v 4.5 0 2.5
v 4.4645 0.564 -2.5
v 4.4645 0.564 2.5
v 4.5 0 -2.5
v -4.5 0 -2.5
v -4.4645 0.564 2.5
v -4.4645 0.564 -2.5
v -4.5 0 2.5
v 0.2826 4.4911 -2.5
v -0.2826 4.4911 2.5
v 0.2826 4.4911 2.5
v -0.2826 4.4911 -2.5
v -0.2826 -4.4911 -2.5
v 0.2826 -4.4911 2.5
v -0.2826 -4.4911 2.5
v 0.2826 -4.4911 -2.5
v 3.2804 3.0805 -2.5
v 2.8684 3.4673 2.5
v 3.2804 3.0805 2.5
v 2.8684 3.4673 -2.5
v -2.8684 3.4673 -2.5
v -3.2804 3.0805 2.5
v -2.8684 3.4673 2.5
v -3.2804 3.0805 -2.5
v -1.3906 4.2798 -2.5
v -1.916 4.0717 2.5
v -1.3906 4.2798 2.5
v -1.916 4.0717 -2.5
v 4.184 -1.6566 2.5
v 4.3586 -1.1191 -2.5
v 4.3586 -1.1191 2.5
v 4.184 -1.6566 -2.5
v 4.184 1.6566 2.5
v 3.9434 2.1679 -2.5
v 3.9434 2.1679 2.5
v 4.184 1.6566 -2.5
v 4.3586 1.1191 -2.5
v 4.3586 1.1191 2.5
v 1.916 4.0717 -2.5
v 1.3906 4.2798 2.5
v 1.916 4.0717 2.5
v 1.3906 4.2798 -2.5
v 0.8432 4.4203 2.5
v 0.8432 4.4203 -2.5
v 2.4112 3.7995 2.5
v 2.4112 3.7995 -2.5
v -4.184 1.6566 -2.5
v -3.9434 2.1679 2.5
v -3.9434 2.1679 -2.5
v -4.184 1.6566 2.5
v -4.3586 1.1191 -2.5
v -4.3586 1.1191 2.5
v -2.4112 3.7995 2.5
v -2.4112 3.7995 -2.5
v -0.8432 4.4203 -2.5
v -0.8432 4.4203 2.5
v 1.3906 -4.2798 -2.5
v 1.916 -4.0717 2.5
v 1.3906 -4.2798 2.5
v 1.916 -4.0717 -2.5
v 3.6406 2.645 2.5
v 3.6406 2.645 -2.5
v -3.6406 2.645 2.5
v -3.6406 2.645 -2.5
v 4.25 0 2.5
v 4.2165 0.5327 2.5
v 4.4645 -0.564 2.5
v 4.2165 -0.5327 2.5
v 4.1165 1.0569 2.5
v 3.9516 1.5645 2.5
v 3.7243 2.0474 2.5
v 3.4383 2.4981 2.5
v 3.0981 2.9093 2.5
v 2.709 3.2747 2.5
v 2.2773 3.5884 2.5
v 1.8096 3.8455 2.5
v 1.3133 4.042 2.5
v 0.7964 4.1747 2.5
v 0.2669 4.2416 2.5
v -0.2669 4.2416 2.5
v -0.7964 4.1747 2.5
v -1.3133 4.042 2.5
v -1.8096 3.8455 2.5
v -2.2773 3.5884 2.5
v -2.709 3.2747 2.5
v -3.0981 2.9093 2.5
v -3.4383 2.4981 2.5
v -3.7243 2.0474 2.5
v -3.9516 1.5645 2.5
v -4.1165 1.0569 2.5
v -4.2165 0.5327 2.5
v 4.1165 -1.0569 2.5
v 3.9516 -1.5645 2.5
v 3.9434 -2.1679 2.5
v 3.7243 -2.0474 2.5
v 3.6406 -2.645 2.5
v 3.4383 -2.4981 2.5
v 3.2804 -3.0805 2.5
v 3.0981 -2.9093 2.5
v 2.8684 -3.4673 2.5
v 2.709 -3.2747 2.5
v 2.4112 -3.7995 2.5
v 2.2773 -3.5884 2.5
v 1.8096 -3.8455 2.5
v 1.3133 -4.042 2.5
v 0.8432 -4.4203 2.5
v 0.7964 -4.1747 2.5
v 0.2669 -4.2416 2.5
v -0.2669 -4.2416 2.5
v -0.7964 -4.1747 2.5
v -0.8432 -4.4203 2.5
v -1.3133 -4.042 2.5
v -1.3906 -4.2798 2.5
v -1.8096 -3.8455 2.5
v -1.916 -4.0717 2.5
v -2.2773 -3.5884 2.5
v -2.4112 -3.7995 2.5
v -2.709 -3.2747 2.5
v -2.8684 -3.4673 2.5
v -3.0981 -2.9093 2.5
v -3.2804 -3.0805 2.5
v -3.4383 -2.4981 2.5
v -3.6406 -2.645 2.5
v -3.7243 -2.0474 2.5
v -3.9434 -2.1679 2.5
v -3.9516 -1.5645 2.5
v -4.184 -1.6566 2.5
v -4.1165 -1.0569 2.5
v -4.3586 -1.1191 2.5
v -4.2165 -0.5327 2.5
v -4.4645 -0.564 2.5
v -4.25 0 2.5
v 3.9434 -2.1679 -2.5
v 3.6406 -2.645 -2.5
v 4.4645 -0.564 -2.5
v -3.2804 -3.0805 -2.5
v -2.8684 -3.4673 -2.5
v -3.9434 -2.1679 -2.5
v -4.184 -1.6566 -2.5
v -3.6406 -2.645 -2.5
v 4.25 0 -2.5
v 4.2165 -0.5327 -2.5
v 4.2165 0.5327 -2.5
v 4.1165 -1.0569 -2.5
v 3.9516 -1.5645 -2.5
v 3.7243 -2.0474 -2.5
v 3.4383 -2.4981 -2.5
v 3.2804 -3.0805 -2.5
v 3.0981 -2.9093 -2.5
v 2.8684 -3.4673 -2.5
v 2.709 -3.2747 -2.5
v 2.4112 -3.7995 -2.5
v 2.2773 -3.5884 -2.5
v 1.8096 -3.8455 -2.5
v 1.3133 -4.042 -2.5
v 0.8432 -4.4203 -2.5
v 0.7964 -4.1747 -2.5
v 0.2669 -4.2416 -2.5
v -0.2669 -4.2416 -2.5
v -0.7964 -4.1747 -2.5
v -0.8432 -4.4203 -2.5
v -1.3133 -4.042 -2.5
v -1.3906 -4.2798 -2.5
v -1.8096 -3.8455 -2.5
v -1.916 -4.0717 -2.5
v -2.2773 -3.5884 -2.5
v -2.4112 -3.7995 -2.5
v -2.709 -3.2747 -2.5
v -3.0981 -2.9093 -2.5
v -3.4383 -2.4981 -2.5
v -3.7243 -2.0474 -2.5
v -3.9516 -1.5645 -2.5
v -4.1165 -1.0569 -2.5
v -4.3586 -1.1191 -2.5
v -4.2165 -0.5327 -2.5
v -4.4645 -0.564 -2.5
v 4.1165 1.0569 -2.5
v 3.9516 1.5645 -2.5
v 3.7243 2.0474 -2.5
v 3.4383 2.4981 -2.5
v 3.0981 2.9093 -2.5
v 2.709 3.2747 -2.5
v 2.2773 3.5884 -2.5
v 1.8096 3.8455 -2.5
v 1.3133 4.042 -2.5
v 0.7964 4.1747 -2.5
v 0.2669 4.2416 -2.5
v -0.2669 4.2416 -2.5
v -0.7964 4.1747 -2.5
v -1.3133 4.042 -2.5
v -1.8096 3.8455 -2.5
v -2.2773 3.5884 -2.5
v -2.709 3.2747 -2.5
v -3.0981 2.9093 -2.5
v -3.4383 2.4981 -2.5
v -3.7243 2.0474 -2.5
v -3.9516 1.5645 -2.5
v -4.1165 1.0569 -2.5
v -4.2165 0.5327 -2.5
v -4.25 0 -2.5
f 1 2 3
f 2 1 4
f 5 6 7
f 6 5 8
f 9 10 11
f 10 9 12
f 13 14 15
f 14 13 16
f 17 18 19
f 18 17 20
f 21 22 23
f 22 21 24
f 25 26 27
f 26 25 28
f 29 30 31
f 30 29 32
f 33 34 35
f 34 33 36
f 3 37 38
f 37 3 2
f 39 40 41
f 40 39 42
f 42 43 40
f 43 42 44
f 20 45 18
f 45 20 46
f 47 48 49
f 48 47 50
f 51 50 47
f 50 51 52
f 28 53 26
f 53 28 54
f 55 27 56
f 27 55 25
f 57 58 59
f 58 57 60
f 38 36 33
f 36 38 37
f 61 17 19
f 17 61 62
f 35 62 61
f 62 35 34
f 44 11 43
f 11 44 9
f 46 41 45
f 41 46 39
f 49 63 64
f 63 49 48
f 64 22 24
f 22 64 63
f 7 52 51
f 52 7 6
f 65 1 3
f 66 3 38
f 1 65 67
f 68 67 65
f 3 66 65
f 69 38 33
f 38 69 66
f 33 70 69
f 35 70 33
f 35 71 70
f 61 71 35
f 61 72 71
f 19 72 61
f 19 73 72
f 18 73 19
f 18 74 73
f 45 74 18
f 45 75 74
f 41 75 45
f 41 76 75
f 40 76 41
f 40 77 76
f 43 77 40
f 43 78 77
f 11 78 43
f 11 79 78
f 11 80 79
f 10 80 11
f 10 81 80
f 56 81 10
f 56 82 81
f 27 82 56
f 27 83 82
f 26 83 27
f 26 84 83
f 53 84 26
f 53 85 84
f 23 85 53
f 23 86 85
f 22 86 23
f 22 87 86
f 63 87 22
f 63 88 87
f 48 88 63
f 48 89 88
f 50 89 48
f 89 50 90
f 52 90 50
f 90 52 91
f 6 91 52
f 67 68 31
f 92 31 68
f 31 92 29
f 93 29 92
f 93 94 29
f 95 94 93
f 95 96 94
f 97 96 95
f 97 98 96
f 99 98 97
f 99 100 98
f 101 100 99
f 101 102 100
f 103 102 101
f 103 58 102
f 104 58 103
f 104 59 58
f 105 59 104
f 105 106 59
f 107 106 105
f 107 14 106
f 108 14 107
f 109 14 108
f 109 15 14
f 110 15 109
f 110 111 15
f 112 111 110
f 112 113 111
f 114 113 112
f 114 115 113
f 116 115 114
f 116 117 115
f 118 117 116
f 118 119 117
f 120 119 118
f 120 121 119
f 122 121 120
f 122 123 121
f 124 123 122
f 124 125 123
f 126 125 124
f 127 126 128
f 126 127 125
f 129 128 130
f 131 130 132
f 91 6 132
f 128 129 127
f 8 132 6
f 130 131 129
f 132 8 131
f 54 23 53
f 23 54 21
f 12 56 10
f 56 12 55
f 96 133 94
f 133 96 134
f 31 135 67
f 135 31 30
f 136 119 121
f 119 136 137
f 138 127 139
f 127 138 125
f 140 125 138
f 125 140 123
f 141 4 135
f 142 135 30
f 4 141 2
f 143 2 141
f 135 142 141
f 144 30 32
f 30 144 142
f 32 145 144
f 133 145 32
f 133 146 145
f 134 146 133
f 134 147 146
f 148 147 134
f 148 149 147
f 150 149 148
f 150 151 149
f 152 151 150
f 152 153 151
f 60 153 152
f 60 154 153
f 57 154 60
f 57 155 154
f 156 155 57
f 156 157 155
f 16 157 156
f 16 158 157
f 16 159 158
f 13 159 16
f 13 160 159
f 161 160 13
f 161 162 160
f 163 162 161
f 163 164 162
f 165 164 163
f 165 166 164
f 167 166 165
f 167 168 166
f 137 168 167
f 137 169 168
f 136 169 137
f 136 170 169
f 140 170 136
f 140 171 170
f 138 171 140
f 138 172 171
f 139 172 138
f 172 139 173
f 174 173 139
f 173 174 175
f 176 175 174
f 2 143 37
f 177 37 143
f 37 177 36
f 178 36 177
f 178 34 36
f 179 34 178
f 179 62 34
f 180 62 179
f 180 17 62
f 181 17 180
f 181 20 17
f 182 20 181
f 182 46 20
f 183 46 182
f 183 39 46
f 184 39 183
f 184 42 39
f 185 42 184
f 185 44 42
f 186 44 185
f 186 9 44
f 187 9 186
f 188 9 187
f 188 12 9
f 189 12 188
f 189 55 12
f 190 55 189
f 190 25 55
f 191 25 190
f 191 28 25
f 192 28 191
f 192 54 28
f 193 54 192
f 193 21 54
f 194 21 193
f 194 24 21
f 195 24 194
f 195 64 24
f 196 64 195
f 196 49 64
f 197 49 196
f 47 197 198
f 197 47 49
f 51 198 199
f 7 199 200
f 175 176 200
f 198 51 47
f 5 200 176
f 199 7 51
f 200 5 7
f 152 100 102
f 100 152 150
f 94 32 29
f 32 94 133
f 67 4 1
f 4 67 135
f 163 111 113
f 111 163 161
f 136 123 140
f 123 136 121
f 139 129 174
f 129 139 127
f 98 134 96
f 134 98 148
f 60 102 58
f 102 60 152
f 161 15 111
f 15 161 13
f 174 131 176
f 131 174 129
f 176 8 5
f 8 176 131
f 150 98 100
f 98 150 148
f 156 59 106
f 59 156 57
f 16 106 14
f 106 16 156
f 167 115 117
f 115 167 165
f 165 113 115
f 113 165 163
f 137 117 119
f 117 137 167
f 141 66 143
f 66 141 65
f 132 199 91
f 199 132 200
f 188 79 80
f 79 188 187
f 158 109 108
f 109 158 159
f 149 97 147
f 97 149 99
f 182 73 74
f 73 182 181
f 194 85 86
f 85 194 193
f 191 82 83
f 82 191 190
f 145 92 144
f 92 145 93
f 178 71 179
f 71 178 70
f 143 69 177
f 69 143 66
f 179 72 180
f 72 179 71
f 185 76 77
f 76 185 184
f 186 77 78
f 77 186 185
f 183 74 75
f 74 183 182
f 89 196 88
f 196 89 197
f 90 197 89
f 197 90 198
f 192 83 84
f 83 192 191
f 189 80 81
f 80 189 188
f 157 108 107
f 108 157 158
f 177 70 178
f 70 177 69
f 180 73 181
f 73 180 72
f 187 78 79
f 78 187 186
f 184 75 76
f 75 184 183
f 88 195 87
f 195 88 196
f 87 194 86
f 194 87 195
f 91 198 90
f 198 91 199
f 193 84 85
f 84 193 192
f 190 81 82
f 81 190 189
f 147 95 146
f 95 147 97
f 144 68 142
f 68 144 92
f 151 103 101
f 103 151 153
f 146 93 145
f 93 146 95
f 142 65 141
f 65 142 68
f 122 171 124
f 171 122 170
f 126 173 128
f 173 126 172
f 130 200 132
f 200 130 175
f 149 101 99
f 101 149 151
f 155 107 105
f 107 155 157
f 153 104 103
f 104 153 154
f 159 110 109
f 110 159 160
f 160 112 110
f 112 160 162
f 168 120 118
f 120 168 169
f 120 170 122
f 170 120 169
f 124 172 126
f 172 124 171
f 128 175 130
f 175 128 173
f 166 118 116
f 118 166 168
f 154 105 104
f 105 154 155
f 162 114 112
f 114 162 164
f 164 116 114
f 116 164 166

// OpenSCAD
$fn = 50;


difference() {
	union() {
		translate(v = [0, 0, -2.5000000000]) {
			cylinder(h = 5, r = 4.5000000000);
		}
	}
	union() {
		translate(v = [0, 0, -100.0000000000]) {
			cylinder(h = 200, r = 4.2500000000);
		}
	}
}
